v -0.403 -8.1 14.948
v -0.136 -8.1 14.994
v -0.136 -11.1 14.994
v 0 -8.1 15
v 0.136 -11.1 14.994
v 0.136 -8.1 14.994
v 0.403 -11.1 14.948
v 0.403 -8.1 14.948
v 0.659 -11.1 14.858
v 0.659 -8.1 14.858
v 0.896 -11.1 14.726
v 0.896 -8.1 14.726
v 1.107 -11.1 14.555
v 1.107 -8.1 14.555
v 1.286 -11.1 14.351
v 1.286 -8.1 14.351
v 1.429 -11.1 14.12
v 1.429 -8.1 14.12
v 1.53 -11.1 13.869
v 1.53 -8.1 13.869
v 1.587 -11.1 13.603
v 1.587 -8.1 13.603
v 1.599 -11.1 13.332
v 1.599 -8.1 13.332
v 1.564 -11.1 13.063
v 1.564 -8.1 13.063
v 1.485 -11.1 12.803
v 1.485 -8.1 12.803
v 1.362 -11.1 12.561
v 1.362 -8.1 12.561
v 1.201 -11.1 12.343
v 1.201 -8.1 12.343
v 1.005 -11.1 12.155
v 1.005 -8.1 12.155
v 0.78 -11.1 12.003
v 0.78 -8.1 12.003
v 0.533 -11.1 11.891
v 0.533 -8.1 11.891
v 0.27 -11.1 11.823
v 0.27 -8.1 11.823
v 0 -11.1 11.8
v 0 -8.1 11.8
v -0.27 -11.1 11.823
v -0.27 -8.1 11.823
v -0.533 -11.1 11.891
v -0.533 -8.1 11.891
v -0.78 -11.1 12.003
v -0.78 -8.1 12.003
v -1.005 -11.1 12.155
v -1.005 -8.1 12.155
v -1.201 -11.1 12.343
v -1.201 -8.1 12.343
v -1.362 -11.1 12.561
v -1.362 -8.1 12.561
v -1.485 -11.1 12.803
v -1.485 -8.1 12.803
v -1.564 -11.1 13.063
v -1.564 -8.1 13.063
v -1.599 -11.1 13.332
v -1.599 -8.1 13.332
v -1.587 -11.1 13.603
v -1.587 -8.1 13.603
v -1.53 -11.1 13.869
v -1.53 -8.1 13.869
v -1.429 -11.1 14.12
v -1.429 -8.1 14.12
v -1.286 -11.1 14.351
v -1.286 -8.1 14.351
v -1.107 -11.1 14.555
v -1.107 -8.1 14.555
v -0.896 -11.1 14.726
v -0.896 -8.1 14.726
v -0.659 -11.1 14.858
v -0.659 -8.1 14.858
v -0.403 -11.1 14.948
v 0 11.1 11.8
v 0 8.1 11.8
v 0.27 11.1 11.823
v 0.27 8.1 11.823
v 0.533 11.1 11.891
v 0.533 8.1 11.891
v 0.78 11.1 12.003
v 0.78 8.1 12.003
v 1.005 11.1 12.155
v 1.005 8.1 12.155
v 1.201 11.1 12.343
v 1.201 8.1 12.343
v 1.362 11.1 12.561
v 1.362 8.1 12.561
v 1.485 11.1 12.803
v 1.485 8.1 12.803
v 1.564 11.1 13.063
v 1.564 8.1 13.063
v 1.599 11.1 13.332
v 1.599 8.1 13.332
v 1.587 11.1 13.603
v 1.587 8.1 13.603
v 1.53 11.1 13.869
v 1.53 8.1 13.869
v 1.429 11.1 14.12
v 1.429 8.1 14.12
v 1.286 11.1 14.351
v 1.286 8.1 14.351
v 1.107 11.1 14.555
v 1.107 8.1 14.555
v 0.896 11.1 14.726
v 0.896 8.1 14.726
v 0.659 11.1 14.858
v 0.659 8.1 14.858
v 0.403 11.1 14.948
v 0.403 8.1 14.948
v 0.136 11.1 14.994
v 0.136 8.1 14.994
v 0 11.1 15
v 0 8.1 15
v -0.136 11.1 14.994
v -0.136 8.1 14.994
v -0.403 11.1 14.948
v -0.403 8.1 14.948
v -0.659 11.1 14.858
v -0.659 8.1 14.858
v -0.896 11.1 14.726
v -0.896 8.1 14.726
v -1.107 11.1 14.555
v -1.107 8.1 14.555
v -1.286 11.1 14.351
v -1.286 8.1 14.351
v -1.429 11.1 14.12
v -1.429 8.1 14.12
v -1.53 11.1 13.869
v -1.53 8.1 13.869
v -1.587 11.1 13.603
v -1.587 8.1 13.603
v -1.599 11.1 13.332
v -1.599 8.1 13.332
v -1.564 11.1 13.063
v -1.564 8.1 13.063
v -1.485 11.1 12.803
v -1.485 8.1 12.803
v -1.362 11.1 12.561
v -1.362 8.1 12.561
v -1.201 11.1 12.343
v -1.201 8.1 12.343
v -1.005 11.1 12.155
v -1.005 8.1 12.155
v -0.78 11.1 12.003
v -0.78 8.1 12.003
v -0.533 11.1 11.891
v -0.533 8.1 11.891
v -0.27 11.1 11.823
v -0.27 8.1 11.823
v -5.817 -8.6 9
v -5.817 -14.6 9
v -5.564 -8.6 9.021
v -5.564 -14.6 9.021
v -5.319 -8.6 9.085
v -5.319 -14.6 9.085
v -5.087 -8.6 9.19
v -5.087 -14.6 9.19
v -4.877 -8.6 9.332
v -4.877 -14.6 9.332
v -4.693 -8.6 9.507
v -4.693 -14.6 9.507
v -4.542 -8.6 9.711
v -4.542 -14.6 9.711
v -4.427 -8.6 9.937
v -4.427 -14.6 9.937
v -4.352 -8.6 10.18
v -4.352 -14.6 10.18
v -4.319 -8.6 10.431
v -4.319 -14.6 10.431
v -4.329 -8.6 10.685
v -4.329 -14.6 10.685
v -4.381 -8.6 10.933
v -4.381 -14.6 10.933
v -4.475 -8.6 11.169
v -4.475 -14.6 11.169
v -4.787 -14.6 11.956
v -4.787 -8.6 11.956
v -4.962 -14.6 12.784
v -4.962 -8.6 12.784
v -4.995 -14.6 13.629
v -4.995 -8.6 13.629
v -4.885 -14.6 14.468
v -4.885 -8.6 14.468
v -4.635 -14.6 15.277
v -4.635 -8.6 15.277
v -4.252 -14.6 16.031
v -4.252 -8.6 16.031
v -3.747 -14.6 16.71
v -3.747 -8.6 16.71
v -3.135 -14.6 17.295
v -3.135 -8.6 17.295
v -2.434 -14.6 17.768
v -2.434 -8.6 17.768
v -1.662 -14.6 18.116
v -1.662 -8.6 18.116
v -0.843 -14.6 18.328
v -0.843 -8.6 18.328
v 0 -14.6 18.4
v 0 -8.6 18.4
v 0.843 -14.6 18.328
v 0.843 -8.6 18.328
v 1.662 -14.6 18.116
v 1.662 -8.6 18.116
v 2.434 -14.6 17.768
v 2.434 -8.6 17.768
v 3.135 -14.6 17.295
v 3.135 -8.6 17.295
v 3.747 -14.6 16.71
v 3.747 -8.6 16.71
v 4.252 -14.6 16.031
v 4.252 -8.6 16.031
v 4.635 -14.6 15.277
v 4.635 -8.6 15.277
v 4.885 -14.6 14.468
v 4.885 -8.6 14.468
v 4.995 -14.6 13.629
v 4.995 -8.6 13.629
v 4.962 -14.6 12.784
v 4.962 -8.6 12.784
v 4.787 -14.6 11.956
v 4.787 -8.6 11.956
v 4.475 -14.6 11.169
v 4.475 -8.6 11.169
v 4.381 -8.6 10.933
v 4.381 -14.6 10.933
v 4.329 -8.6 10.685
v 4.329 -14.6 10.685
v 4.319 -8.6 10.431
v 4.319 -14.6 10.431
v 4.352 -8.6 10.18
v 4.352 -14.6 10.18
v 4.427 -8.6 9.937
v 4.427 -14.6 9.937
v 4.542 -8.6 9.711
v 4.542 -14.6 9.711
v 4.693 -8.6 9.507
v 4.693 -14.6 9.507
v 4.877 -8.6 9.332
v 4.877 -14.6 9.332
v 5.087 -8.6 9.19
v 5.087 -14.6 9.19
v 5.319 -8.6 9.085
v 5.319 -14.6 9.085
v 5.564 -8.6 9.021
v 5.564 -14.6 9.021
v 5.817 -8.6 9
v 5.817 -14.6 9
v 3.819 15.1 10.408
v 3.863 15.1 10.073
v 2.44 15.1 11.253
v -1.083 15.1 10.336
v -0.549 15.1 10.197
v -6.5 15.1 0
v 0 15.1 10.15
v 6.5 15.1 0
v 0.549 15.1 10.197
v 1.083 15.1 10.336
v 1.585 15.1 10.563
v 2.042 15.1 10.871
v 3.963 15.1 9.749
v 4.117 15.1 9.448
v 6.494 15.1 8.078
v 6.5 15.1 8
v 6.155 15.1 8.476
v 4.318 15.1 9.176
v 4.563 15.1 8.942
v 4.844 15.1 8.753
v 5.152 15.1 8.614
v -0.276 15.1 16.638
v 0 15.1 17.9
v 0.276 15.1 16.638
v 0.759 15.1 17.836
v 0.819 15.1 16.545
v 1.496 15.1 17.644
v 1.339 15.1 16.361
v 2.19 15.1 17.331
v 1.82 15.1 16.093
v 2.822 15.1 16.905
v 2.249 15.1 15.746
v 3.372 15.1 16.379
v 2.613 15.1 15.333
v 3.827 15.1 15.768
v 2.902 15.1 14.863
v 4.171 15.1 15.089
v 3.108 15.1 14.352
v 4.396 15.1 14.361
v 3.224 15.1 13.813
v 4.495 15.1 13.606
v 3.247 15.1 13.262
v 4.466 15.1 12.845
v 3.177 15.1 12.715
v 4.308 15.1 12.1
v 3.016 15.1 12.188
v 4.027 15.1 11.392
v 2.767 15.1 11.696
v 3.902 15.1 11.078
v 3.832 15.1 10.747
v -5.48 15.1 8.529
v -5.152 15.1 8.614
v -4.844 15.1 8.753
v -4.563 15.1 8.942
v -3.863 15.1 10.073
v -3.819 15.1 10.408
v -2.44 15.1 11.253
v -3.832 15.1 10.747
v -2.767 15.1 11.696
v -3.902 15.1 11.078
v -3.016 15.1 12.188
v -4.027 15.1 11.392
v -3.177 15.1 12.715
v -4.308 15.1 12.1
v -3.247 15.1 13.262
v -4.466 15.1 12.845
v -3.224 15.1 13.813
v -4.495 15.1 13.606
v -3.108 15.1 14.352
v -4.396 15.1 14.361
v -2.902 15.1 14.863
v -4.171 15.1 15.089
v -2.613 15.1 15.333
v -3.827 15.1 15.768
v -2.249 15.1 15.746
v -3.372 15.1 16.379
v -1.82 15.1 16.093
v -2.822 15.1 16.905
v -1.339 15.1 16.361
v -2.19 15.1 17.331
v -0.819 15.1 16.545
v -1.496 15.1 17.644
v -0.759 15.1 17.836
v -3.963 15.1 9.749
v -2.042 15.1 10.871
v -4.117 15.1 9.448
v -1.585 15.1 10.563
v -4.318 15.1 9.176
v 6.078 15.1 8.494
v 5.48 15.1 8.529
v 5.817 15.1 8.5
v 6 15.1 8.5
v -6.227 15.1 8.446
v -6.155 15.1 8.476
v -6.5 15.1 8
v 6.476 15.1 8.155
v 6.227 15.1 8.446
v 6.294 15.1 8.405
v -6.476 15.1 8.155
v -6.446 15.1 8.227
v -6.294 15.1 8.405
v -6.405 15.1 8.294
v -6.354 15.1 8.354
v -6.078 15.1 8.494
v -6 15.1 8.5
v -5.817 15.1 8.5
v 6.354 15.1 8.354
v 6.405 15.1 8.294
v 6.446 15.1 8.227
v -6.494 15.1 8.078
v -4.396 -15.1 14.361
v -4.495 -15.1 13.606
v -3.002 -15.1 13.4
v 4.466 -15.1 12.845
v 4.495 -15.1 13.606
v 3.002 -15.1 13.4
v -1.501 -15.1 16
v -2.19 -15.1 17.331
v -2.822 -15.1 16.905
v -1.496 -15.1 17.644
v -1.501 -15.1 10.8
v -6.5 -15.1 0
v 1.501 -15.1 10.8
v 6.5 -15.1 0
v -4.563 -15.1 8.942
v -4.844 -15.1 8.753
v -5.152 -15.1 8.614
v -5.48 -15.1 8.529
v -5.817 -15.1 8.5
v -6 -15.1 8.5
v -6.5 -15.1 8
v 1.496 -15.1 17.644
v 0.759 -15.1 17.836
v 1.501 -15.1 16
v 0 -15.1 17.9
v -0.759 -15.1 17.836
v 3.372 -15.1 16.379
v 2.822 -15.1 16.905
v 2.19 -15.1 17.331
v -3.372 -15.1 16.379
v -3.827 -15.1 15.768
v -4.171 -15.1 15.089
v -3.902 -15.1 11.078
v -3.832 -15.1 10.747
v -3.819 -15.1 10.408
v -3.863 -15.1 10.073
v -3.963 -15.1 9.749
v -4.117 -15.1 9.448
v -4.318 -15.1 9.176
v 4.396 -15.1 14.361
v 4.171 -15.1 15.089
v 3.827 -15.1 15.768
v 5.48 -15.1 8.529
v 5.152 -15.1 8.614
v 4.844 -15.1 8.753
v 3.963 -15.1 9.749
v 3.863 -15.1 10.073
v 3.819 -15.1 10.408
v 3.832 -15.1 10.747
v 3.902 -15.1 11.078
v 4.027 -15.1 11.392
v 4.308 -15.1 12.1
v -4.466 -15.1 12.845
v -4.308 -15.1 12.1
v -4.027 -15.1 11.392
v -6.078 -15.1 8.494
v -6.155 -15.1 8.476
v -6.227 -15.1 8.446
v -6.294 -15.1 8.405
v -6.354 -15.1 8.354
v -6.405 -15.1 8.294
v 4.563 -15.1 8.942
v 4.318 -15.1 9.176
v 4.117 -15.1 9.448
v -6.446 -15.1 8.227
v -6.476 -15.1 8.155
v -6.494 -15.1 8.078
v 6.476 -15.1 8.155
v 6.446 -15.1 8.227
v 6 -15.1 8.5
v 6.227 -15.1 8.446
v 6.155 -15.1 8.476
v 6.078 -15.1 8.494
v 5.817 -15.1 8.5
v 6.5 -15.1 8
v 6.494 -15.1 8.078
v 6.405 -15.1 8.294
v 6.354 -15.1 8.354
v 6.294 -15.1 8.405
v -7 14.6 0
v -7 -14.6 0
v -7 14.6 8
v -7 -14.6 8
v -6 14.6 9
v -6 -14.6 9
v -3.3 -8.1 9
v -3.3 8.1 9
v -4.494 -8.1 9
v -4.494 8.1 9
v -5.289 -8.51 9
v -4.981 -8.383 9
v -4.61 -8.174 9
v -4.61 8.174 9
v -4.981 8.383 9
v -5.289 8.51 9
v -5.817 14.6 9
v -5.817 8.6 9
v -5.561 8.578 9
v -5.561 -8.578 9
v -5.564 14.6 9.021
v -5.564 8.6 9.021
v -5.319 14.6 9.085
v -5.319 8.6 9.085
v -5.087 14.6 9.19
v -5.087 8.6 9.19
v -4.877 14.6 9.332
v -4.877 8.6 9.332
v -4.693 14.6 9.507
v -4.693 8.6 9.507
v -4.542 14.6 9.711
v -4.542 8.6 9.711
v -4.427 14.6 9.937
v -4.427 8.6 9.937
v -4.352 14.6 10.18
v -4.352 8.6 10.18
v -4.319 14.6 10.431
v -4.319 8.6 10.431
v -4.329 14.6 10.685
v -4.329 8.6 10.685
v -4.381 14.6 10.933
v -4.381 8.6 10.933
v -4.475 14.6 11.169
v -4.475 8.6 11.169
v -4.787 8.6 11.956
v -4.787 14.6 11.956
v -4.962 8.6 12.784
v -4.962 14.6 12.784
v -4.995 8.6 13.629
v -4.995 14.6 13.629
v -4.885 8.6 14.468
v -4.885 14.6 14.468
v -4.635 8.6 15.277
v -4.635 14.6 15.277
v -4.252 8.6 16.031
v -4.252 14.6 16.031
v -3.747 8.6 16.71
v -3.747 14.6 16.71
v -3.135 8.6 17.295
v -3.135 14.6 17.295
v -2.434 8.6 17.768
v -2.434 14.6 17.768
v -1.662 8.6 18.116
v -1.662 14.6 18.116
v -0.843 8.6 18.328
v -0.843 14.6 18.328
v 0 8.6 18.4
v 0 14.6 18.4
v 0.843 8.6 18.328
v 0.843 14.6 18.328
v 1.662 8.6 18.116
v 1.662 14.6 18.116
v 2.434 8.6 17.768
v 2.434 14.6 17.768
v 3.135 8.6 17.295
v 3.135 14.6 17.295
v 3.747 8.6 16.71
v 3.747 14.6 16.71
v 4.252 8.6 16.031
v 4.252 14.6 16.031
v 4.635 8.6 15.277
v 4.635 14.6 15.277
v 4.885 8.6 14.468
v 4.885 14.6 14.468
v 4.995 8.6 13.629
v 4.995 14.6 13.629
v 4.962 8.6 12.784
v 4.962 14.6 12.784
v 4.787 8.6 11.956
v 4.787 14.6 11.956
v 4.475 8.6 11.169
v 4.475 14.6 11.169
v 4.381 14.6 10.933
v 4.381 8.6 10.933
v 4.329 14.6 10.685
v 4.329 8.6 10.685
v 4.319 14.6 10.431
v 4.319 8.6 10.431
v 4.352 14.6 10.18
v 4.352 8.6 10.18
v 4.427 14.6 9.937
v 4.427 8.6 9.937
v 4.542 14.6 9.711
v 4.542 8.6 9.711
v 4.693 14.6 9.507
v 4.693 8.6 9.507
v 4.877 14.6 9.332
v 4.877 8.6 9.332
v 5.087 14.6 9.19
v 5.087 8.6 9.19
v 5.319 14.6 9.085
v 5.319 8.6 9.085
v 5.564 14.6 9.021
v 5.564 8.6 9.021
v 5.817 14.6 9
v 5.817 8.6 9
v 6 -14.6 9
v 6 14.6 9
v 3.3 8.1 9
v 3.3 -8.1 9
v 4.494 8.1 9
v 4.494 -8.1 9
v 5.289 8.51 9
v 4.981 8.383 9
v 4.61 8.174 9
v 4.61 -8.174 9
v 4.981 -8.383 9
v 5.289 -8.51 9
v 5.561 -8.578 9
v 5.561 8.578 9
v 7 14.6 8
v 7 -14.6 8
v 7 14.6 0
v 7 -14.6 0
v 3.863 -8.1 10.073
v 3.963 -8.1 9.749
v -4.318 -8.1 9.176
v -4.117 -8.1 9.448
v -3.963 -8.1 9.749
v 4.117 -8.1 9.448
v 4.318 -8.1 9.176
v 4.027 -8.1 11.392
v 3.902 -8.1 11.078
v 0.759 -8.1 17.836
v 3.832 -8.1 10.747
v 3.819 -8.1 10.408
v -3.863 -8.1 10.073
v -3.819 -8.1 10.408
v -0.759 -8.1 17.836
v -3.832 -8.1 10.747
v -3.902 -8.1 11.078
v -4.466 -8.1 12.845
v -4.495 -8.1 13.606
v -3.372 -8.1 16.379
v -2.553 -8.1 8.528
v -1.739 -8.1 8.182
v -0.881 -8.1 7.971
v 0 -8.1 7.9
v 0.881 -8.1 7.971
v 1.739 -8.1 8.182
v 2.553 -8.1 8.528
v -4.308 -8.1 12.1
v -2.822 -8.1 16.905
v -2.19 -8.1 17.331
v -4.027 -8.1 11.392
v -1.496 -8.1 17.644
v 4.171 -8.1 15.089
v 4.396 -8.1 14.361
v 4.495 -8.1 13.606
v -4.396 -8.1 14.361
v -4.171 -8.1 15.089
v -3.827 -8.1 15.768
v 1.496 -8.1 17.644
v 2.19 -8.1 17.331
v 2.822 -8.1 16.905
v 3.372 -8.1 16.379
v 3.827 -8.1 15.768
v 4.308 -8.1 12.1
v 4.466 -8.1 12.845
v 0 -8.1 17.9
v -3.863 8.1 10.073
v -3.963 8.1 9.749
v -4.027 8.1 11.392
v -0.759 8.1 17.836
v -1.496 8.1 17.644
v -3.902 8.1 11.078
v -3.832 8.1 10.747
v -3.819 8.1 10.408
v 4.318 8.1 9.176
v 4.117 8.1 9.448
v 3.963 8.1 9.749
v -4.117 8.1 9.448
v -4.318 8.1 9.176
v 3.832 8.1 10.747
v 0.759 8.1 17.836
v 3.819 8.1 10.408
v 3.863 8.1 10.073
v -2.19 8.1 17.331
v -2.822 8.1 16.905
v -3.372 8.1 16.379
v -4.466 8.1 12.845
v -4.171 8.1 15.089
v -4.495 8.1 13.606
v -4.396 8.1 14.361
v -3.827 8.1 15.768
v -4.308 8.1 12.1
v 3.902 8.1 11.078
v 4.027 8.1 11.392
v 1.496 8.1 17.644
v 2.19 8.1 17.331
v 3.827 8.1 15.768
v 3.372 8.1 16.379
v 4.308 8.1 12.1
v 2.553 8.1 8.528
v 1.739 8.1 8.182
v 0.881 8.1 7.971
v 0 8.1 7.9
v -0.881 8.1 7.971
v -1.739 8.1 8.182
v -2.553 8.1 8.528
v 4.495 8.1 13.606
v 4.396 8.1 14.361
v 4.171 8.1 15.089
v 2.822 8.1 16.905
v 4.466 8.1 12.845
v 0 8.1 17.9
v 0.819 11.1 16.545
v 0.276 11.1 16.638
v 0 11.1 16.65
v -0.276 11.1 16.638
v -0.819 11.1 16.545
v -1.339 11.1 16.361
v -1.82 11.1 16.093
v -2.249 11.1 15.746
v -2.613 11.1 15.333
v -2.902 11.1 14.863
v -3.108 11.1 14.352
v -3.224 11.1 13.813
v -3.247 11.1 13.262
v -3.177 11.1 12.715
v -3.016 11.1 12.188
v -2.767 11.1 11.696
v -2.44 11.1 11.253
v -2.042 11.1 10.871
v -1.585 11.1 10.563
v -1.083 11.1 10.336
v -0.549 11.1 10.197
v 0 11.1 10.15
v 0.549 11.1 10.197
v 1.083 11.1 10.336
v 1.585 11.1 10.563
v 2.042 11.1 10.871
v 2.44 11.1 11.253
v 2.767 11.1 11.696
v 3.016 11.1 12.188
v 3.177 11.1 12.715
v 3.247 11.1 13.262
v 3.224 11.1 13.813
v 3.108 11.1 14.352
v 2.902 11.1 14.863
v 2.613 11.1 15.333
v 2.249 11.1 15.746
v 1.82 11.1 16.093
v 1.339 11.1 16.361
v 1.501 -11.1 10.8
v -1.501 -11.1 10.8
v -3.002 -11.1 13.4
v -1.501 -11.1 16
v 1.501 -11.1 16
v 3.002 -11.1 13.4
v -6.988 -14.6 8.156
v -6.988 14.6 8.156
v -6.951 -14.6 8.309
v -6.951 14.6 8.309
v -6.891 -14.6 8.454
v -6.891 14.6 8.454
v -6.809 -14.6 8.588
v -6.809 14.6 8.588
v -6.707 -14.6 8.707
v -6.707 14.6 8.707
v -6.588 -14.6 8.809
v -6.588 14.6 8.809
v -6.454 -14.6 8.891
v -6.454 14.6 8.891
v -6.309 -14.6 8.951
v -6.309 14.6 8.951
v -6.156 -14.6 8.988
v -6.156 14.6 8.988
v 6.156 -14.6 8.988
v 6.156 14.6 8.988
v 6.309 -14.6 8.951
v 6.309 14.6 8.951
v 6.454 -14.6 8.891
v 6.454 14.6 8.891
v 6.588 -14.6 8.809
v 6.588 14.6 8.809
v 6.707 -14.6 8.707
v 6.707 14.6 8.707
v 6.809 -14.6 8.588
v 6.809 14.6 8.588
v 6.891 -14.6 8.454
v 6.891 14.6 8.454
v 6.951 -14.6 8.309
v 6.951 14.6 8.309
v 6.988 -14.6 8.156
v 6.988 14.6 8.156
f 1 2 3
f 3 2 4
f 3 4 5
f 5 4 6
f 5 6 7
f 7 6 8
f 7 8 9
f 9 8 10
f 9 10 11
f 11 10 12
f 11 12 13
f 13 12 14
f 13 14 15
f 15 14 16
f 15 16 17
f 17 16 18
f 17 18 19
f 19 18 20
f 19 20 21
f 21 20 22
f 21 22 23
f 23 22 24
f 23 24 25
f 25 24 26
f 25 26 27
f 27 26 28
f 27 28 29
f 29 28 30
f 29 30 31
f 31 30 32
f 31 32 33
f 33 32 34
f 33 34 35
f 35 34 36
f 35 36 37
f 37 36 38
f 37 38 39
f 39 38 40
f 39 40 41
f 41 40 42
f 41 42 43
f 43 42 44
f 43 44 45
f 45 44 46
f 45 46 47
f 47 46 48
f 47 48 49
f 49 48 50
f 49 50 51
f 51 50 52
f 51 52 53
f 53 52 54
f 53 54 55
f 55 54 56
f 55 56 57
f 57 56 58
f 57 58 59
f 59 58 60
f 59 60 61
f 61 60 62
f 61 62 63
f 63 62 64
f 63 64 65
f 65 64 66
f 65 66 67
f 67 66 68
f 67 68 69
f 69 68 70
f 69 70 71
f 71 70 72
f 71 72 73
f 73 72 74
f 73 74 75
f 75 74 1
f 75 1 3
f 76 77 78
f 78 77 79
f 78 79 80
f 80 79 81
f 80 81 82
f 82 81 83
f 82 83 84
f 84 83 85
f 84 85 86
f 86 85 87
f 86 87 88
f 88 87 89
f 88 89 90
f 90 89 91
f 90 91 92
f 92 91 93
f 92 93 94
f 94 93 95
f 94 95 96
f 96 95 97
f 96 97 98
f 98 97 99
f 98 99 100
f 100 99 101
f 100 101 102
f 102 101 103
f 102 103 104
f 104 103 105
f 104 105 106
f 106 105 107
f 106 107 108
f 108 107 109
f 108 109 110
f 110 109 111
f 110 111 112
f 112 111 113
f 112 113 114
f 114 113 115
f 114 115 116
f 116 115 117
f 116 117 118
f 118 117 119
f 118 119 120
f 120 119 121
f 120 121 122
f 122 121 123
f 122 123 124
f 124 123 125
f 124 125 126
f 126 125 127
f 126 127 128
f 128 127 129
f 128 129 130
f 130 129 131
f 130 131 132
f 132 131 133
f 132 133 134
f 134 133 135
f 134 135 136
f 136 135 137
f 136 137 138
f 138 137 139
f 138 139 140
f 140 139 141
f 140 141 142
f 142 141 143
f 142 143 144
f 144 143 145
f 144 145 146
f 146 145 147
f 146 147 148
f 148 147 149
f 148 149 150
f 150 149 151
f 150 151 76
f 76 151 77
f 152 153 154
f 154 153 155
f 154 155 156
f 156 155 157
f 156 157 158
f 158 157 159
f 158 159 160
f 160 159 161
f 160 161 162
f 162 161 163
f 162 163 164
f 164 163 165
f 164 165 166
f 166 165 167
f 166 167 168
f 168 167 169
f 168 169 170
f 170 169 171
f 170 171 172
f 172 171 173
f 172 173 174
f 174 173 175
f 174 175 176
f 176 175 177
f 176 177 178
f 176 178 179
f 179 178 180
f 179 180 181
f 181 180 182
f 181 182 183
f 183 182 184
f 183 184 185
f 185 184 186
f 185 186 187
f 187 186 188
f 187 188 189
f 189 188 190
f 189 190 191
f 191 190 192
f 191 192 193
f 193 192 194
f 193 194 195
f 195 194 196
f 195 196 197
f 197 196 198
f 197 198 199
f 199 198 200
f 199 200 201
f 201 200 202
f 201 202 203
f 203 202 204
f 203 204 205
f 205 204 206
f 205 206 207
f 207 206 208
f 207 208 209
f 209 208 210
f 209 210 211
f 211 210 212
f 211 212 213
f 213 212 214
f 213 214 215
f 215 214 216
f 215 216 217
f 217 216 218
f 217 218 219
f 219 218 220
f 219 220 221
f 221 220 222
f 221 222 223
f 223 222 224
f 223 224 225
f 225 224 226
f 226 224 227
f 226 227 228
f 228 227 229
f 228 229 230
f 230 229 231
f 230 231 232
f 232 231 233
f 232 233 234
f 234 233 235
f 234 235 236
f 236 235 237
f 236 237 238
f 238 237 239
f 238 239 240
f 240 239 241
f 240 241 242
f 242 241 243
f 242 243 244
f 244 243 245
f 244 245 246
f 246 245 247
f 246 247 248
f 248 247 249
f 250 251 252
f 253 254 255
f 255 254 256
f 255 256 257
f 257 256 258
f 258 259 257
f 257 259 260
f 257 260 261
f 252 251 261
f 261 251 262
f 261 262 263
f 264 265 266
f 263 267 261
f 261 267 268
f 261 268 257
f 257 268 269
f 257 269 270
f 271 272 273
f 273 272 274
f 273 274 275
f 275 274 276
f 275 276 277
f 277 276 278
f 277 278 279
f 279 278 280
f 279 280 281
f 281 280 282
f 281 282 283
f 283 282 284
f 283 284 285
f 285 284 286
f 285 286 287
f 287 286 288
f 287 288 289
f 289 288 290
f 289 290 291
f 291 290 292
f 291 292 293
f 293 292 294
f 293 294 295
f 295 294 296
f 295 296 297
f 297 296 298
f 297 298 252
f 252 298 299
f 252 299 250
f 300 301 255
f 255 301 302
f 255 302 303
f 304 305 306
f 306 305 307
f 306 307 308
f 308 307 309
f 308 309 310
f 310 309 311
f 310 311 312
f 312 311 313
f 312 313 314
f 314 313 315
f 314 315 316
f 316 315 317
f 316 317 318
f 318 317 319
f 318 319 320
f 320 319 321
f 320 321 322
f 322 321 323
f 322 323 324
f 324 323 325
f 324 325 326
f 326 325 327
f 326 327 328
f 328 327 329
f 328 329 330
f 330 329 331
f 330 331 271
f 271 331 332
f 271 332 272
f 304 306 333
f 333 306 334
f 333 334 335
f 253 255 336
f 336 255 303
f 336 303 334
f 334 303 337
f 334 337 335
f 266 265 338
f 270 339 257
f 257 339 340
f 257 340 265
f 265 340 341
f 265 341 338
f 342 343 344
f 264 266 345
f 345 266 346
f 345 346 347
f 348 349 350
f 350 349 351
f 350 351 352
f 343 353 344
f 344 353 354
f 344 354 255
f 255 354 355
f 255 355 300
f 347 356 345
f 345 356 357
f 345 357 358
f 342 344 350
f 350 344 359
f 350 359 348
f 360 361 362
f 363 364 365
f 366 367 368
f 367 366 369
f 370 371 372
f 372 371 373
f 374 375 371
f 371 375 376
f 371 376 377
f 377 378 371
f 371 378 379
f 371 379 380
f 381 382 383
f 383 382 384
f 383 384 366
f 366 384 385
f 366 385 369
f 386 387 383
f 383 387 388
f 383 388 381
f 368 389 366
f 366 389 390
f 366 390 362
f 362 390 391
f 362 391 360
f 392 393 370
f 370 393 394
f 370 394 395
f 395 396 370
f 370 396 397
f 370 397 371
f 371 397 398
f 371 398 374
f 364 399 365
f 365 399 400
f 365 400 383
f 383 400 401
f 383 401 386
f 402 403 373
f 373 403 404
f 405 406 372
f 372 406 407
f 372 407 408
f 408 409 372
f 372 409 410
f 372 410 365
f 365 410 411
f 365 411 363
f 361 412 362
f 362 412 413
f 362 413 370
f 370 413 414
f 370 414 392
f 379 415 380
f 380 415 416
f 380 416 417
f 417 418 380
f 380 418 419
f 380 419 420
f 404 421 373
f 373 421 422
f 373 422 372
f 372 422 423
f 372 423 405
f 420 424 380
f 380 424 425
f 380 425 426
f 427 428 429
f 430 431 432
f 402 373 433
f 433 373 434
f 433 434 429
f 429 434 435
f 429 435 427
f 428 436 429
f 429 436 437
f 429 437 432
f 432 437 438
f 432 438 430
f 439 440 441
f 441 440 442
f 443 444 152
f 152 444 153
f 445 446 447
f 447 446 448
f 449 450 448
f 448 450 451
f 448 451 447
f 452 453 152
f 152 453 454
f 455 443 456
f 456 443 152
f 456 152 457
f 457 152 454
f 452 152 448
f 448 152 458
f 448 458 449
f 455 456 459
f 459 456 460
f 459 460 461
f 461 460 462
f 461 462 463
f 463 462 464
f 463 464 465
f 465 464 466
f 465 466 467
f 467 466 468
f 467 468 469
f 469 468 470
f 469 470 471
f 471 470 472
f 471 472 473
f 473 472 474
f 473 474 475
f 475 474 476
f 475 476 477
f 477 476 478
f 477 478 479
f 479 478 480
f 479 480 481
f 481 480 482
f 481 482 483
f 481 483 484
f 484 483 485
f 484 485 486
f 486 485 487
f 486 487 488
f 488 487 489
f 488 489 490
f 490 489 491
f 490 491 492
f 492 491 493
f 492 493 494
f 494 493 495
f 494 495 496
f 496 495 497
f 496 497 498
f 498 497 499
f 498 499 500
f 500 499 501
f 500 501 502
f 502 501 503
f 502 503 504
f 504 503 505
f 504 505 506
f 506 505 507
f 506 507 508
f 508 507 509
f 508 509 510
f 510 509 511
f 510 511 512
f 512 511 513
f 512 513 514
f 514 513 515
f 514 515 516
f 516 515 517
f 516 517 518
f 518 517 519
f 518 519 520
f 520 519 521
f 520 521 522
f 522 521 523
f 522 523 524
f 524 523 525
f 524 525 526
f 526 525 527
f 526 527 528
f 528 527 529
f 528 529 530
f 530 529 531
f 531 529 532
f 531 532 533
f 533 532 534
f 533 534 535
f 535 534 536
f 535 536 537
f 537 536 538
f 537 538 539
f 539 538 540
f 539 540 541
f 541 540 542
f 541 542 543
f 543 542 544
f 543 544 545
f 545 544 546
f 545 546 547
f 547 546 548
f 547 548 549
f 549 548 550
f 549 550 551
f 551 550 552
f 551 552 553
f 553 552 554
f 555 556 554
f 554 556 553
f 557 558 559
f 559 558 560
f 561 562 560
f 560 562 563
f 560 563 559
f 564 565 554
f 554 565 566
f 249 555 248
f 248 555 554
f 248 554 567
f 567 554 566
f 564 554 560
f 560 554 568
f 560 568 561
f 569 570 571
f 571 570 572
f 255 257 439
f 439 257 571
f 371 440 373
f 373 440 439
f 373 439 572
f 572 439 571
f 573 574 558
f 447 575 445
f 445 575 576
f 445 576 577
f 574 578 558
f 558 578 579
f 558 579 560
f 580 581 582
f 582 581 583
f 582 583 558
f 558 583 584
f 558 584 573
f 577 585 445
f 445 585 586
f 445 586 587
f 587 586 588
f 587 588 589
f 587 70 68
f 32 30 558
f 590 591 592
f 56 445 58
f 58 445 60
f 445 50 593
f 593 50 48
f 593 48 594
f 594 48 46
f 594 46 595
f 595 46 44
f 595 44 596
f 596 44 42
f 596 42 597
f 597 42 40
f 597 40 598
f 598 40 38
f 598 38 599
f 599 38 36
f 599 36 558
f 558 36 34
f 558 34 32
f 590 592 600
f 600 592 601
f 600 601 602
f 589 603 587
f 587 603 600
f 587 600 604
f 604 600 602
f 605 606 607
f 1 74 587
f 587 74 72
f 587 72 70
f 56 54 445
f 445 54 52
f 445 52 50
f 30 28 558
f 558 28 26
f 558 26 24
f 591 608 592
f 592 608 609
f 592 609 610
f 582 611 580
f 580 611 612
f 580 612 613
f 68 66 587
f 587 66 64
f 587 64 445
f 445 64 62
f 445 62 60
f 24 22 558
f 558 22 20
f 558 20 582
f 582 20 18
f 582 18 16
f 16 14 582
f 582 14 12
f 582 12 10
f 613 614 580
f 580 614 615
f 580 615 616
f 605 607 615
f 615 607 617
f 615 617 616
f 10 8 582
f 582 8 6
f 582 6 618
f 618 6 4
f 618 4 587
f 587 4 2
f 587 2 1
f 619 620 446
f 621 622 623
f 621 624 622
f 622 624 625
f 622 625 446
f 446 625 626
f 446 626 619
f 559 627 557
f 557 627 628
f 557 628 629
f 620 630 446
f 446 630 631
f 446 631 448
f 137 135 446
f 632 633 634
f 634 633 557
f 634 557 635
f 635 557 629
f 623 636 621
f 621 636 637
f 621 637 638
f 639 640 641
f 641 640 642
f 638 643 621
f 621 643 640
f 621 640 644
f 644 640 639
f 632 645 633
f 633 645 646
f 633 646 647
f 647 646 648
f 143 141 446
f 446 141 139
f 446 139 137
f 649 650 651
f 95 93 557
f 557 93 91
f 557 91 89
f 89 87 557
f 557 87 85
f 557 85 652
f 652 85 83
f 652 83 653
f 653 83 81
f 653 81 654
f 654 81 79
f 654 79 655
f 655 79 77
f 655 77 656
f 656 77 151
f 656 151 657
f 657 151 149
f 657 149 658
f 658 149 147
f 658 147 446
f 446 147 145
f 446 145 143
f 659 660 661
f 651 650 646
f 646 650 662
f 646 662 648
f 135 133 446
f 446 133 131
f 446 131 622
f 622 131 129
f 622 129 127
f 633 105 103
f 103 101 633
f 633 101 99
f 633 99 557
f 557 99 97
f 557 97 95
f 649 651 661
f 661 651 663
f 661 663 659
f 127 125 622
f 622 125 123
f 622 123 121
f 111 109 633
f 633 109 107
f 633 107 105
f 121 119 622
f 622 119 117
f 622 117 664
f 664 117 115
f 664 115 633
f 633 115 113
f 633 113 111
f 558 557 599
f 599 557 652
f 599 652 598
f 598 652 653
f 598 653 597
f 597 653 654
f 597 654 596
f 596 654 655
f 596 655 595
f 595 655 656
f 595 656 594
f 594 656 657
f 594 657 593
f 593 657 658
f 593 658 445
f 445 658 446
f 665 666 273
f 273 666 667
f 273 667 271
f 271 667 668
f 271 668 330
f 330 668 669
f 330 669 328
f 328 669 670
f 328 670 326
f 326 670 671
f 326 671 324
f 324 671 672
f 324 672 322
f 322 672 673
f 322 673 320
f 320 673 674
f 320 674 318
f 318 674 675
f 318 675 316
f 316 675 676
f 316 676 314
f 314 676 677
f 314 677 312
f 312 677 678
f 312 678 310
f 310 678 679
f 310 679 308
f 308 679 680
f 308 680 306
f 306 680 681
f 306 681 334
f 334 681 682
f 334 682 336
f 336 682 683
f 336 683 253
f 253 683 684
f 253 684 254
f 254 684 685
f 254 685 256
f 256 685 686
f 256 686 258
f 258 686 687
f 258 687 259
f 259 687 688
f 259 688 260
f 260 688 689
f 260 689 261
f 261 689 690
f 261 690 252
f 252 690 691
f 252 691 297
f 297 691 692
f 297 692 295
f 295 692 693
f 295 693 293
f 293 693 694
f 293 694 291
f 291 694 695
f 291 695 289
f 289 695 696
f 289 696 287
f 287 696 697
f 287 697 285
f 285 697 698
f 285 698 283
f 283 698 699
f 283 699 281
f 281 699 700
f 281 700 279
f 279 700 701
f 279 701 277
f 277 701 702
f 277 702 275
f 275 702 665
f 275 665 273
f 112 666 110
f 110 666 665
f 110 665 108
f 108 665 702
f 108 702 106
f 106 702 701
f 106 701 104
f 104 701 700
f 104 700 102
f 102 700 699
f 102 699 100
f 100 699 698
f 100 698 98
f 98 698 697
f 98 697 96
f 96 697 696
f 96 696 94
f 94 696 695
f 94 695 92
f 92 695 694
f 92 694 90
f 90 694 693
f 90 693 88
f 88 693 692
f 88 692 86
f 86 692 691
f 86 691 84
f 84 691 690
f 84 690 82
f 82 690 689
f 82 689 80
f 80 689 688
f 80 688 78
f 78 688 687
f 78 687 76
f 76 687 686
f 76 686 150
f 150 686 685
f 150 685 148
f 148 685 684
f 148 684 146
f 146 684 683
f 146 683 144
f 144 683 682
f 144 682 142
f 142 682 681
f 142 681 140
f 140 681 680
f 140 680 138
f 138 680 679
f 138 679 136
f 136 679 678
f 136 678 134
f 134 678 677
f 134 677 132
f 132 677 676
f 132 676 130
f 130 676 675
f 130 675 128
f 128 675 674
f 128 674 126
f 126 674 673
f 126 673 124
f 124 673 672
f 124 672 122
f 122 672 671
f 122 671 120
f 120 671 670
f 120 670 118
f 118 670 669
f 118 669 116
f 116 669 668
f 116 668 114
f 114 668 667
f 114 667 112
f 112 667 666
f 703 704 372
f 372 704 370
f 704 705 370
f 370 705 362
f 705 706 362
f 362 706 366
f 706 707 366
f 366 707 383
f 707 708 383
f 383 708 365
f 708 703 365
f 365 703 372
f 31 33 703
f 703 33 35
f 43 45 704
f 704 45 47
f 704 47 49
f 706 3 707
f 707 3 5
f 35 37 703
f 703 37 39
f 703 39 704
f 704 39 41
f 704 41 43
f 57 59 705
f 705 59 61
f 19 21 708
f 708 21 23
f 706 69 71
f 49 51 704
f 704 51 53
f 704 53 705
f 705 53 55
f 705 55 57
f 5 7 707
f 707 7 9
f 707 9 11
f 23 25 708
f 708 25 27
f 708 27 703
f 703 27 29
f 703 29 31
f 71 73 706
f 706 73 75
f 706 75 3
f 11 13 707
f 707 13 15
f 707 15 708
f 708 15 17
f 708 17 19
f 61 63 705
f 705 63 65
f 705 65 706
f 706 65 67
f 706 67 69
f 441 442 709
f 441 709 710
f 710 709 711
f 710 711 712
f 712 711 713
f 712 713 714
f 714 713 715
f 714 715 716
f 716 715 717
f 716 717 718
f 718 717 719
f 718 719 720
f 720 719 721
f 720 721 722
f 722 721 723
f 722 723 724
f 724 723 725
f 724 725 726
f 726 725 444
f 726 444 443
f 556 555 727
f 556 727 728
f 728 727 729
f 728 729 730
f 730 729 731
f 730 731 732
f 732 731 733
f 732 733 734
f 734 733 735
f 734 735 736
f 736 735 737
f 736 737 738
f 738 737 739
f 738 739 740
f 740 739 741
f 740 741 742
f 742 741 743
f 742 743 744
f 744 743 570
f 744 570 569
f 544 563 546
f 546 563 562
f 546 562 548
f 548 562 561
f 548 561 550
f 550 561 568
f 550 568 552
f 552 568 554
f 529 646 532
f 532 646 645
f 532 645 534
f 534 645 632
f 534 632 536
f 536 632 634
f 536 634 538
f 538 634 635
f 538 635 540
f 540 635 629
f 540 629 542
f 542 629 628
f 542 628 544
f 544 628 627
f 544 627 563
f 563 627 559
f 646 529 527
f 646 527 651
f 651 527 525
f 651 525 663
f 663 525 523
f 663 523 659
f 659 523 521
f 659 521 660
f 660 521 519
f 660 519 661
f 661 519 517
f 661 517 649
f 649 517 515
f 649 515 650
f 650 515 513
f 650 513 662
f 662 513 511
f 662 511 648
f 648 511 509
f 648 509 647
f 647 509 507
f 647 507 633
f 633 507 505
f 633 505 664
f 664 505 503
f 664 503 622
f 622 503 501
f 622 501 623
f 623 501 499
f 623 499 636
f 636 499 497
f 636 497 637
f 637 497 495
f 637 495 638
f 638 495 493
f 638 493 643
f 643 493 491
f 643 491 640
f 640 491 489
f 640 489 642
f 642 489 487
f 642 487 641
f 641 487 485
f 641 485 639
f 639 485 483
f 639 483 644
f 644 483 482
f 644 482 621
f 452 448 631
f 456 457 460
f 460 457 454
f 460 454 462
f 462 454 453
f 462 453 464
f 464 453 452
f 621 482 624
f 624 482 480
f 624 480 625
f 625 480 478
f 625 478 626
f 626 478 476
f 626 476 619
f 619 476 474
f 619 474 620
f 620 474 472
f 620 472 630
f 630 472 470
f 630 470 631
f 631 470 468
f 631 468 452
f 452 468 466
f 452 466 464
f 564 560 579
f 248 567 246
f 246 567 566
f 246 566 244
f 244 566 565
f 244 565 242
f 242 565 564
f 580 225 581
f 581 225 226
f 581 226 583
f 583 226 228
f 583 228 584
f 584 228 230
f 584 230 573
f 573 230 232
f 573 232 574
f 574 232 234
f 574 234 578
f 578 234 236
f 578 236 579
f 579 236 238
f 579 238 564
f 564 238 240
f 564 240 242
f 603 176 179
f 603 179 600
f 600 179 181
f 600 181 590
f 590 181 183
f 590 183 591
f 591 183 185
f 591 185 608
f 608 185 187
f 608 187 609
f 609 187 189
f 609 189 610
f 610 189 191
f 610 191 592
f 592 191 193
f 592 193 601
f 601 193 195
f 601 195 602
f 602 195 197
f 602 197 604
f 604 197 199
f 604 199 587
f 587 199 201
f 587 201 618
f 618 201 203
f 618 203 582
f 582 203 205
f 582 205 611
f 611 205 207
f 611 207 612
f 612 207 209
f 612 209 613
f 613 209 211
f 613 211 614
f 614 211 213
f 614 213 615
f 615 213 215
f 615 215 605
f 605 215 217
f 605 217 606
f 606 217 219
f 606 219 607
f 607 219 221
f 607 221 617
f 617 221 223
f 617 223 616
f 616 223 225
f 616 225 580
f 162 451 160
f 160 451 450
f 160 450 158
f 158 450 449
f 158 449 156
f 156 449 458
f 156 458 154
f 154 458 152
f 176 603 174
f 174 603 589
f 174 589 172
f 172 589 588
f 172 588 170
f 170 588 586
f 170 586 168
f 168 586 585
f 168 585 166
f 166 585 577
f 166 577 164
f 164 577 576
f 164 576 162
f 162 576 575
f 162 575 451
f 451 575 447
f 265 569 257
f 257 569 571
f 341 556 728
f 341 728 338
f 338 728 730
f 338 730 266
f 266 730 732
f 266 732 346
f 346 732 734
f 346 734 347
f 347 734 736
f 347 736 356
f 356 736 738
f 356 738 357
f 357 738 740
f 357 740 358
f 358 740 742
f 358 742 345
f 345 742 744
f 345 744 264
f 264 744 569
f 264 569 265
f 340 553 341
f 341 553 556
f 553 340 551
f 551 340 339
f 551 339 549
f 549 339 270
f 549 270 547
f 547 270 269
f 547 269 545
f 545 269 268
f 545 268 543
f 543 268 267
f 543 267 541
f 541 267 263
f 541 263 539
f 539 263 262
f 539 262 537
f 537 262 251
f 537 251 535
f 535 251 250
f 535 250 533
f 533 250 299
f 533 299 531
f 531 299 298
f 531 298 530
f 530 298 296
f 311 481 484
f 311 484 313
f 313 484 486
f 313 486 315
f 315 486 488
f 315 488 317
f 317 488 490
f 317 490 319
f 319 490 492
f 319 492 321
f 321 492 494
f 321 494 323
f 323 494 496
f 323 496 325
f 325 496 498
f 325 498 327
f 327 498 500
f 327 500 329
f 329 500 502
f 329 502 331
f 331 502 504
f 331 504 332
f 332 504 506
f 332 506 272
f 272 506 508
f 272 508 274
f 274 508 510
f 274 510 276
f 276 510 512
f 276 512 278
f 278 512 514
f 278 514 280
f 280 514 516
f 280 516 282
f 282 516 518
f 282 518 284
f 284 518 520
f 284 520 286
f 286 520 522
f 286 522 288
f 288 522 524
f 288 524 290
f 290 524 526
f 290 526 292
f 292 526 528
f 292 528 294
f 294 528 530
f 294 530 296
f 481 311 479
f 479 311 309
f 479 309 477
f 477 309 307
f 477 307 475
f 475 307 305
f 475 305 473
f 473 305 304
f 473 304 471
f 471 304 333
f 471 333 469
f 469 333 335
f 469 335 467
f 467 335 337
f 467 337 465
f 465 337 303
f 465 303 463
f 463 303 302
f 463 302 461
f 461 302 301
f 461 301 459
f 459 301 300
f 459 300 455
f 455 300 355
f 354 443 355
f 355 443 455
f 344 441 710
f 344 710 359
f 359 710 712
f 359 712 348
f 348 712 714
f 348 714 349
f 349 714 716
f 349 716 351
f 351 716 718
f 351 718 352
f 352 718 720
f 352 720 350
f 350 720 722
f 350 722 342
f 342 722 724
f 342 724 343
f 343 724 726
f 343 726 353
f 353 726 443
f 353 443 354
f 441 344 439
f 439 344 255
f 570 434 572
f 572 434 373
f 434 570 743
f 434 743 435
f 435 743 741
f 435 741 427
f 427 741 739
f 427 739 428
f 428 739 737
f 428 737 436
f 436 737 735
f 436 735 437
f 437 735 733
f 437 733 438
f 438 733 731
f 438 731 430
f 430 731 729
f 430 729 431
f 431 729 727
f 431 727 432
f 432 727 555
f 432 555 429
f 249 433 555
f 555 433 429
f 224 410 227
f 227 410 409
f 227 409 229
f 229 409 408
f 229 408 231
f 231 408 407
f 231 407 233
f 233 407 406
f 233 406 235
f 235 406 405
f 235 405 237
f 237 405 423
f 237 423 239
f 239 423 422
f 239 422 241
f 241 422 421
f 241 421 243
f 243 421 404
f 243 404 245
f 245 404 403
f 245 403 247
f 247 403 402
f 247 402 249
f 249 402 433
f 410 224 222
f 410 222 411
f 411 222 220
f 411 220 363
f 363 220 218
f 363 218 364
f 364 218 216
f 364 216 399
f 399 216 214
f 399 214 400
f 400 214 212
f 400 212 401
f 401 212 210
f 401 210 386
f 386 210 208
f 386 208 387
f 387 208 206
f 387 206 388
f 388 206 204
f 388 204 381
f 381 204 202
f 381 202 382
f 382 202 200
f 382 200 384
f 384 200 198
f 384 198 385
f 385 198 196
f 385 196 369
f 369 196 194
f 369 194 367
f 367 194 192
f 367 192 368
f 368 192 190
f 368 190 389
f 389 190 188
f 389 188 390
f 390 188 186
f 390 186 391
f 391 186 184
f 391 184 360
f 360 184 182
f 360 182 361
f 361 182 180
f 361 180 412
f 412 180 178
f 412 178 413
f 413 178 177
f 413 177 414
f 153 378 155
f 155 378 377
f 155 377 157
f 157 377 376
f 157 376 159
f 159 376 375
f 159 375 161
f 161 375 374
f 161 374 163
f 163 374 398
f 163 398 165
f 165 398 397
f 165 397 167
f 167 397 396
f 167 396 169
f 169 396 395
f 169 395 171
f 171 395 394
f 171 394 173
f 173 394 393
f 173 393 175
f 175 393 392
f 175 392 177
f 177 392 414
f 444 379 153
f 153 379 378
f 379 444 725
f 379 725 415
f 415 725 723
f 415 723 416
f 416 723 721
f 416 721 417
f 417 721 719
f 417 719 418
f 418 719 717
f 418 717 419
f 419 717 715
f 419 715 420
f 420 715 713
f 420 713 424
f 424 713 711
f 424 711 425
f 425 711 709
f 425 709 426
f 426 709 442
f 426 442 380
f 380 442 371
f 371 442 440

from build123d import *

# Parameters (mm, degrees)
CROQUIS2_R                 = 1.6
SALIENTE_EXTRUIR1_DEPTH    = 15.1
CORTAR_EXTRUIR4_DEPTH      = 8.1
CORTAR_EXTRUIR2_DEPTH      = 37.049965326
CORTAR_EXTRUIR2_DEPTH_BACK = 4
CROQUIS4_R                 = 3.25
CORTAR_EXTRUIR3_DEPTH      = 4
REDONDEO2_R                = 1
CHAFL_N1_SIZE              = 0.5


with BuildPart() as part:
    # Croquis2 → Saliente-Extruir1 (new, symmetric)
    with BuildSketch(Plane(origin=(0, 0, 0), x_dir=(0, 0, -1), z_dir=(0, 1, 0))):
        with BuildLine():
            Line((0, -7), (0, 7))
            Line((0, 7), (-9, 7))
            Line((-9, 7), (-9, 5.817215829))
            ThreePointArc((-9, 5.817215829), (-9.710647783, 4.541706881), (-11.169230769, 4.474781407))
            ThreePointArc((-11.169230769, 4.474781407), (-18.4, 0), (-11.169230769, -4.474781407))
            ThreePointArc((-11.169230769, -4.474781407), (-9.710647783, -4.541706881), (-9, -5.817215829))
            Line((-9, -5.817215829), (-9, -7))
            Line((-9, -7), (0, -7))
        make_face()
        with Locations(Location((-13.4, 0, 0), (0, 0, 180))):
            Circle(CROQUIS2_R, mode=Mode.SUBTRACT)
    extrude(amount=SALIENTE_EXTRUIR1_DEPTH, both=True)

    # Croquis6 → Cortar-Extruir4 (cut, symmetric)
    with BuildSketch(Plane(origin=(0, 0, 0), x_dir=(1, 0, 0), z_dir=(0, 1, 0))):
        with BuildLine():
            Line((-7, -9), (-3.3, -9))
            ThreePointArc((-3.3, -9), (0, -7.9), (3.3, -9))
            Line((3.3, -9), (7, -9))
            Line((7, -9), (7, -18.9))
            Line((7, -18.9), (-7, -18.9))
            Line((-7, -18.9), (-7, -9))
        make_face()
    extrude(amount=CORTAR_EXTRUIR4_DEPTH, both=True, mode=Mode.SUBTRACT)

    # Croquis4 → Cortar-Extruir2 (cut, two sides: drawn at the far end of the back side and taken through both)
    with BuildSketch(Plane(origin=(0, 15.1, 0), x_dir=(1, 0, 0), z_dir=(0, 1, 0)).offset(-CORTAR_EXTRUIR2_DEPTH_BACK)):
        with Locations(Location((0, -13.4, 0), (0, 0, 90))):
            Circle(CROQUIS4_R)
    extrude(amount=CORTAR_EXTRUIR2_DEPTH + CORTAR_EXTRUIR2_DEPTH_BACK, mode=Mode.SUBTRACT)

    # Croquis5 → Cortar-Extruir3 (cut)
    with BuildSketch(Plane.XZ.offset(15.1)):
        Polygon((1.5011107, 10.8), (3.0022214, 13.4), (1.5011107, 16), (-1.5011107, 16), (-3.0022214, 13.4), (-1.5011107, 10.8), align=None)
    extrude(amount=-CORTAR_EXTRUIR3_DEPTH, mode=Mode.SUBTRACT)

    # Redondeo2
    redondeo2_edges = [part.edges().sort_by_distance(p)[0] for p in [
        (7, 0, 9),
        (-7, 0, 9),
    ]]
    fillet(redondeo2_edges, radius=REDONDEO2_R)

    # Chaflán1
    # the kernel refuses this chamfer: 0.5 mm, written as the material it takes off along each edge
    with BuildSketch(Plane(origin=(0, -15.1, 13.4), x_dir=(-0.8949562813691682, 0, -0.44615384615384657), z_dir=(0.44615384615384657, 0, -0.8949562813691682))) as chafl_n1_piece_1:
        Polygon((5 - CHAFL_N1_SIZE, 0), (5, CHAFL_N1_SIZE), (5, 0), align=None)
    revolve(axis=Axis((0, -15.1, 13.4), (0, 1, 0)), revolution_arc=232.994370335, mode=Mode.SUBTRACT)
    with BuildSketch(Plane(origin=(-5.817215829, -15.1, 10.5), x_dir=(0, 0, -1), z_dir=(-1, 0, 0))) as chafl_n1_piece_2:
        Polygon((1.5 + CHAFL_N1_SIZE, 0), (1.5, -CHAFL_N1_SIZE), (1.5, 0), align=None)
    revolve(axis=Axis((-5.817215829, -15.1, 10.5), (0, -1, 0)), revolution_arc=116.497185168, mode=Mode.SUBTRACT)
    with BuildSketch(Plane(origin=(-7, -15.1, -1.285841494), x_dir=(0.9996219169112968, -0.027495876610585647, 0), z_dir=(0, 0, 1)), Plane(origin=(-7, 15.1, -1.285841494), x_dir=(-0.027495876610585647, -0.9996219169112968, 0), z_dir=(0, 0, 1)), Plane(origin=(7, -15.1, 8), x_dir=(-0.9996219169112968, -0.027495876610585647, 0), z_dir=(0, 0, -1)), Plane(origin=(7, 15.1, 8), x_dir=(0.027495876610585647, -0.9996219169112968, 0), z_dir=(0, 0, -1))) as chafl_n1_piece_3:
        Polygon((CHAFL_N1_SIZE * 0.999621916911, CHAFL_N1_SIZE * 0.0274958766106), (-CHAFL_N1_SIZE * 0.0274958766106, CHAFL_N1_SIZE * 0.999621916911), (0, 0), align=None)
    extrude(amount=9.285841494, mode=Mode.SUBTRACT)
    with BuildSketch(Plane(origin=(-5.817215829, 15.1, 10.5), x_dir=(0, 0, -1), z_dir=(-1, 0, 0))) as chafl_n1_piece_4:
        Polygon((1.5 + CHAFL_N1_SIZE, 0), (1.5, CHAFL_N1_SIZE), (1.5, 0), align=None)
    revolve(axis=Axis((-5.817215829, 15.1, 10.5), (0, -1, 0)), revolution_arc=116.497185168, mode=Mode.SUBTRACT)
    with BuildSketch(Plane(origin=(0, 15.1, 13.4), x_dir=(-0.8949562813691682, 0, -0.44615384615384657), z_dir=(0.44615384615384657, 0, -0.8949562813691682))) as chafl_n1_piece_5:
        Polygon((5 - CHAFL_N1_SIZE, 0), (5, -CHAFL_N1_SIZE), (5, 0), align=None)
    revolve(axis=Axis((0, 15.1, 13.4), (0, 1, 0)), revolution_arc=232.994370335, mode=Mode.SUBTRACT)
    with BuildSketch(Plane(origin=(5.817215829, 15.1, 10.5), x_dir=(-0.8949562813691686, 0, 0.44615384615384585), z_dir=(0.44615384615384585, 0, 0.8949562813691686))) as chafl_n1_piece_6:
        Polygon((1.5 + CHAFL_N1_SIZE, 0), (1.5, CHAFL_N1_SIZE), (1.5, 0), align=None)
    revolve(axis=Axis((5.817215829, 15.1, 10.5), (0, -1, 0)), revolution_arc=116.497185168, mode=Mode.SUBTRACT)
    with BuildSketch(Plane(origin=(5.817215829, 15.1, 9), x_dir=(0, -0.9996219169112968, 0.027495876610585647), z_dir=(1, 0, 0)), Plane(origin=(-6, -15.1, 9), x_dir=(0, -0.027495876610585647, -0.9996219169112968), z_dir=(1, 0, 0)), Plane(origin=(-6, 15.1, 9), x_dir=(0, -0.9996219169112968, 0.027495876610585647), z_dir=(1, 0, 0)), Plane(origin=(5.817215829, -15.1, 9), x_dir=(0, -0.027495876610585647, -0.9996219169112968), z_dir=(1, 0, 0))) as chafl_n1_piece_7:
        Polygon((CHAFL_N1_SIZE * 0.999621916911, CHAFL_N1_SIZE * 0.0274958766106), (-CHAFL_N1_SIZE * 0.0274958766106, CHAFL_N1_SIZE * 0.999621916911), (0, 0), align=None)
    extrude(amount=0.182784171, mode=Mode.SUBTRACT)
    with BuildSketch(Plane(origin=(-5.817215829, 8.1, 10.5), x_dir=(0.8949562813691686, 0, 0.44615384615384585), z_dir=(-0.44615384615384585, 0, 0.8949562813691686))) as chafl_n1_piece_8_section:
        Polygon((1.5 + CHAFL_N1_SIZE, 0), (1.5, CHAFL_N1_SIZE), (1.5, 0), align=None)
    chafl_n1_piece_8 = revolve(axis=Axis((-5.817215829, 8.1, 10.5), (0, 1, 0)), revolution_arc=165.645776503, mode=Mode.PRIVATE)
    chafl_n1_piece_8 = split(chafl_n1_piece_8, bisect_by=Plane(origin=(-4.168851262, 8.241008039, 9), z_dir=(0, 0, 1)), keep=Keep.TOP, mode=Mode.PRIVATE)
    add(chafl_n1_piece_8, mode=Mode.SUBTRACT)
    with BuildSketch(Plane(origin=(0, 8.1, 13.4), x_dir=(-0.8949562813691682, 0, -0.44615384615384657), z_dir=(0.44615384615384657, 0, -0.8949562813691682))) as chafl_n1_piece_9:
        Polygon((5 - CHAFL_N1_SIZE, 0), (5, CHAFL_N1_SIZE), (5, 0), align=None)
    revolve(axis=Axis((0, 8.1, 13.4), (0, 1, 0)), revolution_arc=232.994370335, mode=Mode.SUBTRACT)
    with BuildSketch(Plane(origin=(5.817215829, 8.1, 10.5), x_dir=(0.7564084690774899, 0, -0.6540995550433039), z_dir=(0.6540995550433039, 0, 0.7564084690774899))) as chafl_n1_piece_10_section:
        Polygon((1.5, CHAFL_N1_SIZE), (1.5 + CHAFL_N1_SIZE, 0), (1.5, 0), align=None)
    chafl_n1_piece_10 = revolve(axis=Axis((5.817215829, 8.1, 10.5), (0, 1, 0)), revolution_arc=165.645776503, mode=Mode.PRIVATE)
    chafl_n1_piece_10 = split(chafl_n1_piece_10, bisect_by=Plane(origin=(4.495767194, 8.276282953, 9), z_dir=(0, 0, 1)), keep=Keep.TOP, mode=Mode.PRIVATE)
    add(chafl_n1_piece_10, mode=Mode.SUBTRACT)
    with BuildSketch(Plane(origin=(-5.817215829, -8.1, 10.5), x_dir=(0.8949562813691686, 0, 0.44615384615384585), z_dir=(-0.44615384615384585, 0, 0.8949562813691686))) as chafl_n1_piece_11_section:
        Polygon((1.5, -CHAFL_N1_SIZE), (1.5 + CHAFL_N1_SIZE, 0), (1.5, 0), align=None)
    chafl_n1_piece_11 = revolve(axis=Axis((-5.817215829, -8.1, 10.5), (0, 1, 0)), revolution_arc=165.645776503, mode=Mode.PRIVATE)
    chafl_n1_piece_11 = split(chafl_n1_piece_11, bisect_by=Plane(origin=(-4.495767364, -8.276282993, 9), z_dir=(0, 0, 1)), keep=Keep.TOP, mode=Mode.PRIVATE)
    add(chafl_n1_piece_11, mode=Mode.SUBTRACT)
    with BuildSketch(Plane(origin=(0, -8.1, 13.4), x_dir=(-0.8949562813691682, 0, -0.44615384615384657), z_dir=(0.44615384615384657, 0, -0.8949562813691682))) as chafl_n1_piece_12:
        Polygon((5, -CHAFL_N1_SIZE), (5 - CHAFL_N1_SIZE, 0), (5, 0), align=None)
    revolve(axis=Axis((0, -8.1, 13.4), (0, 1, 0)), revolution_arc=232.994370335, mode=Mode.SUBTRACT)
    with BuildSketch(Plane(origin=(5.817215829, -8.1, 10.5), x_dir=(0.7564084690774899, 0, -0.6540995550433039), z_dir=(0.6540995550433039, 0, 0.7564084690774899))) as chafl_n1_piece_13_section:
        Polygon((1.5, -CHAFL_N1_SIZE), (1.5 + CHAFL_N1_SIZE, 0), (1.5, 0), align=None)
    chafl_n1_piece_13 = revolve(axis=Axis((5.817215829, -8.1, 10.5), (0, 1, 0)), revolution_arc=165.645776503, mode=Mode.PRIVATE)
    chafl_n1_piece_13 = split(chafl_n1_piece_13, bisect_by=Plane(origin=(4.495767194, -8.276282953, 9), z_dir=(0, 0, 1)), keep=Keep.TOP, mode=Mode.PRIVATE)
    add(chafl_n1_piece_13, mode=Mode.SUBTRACT)
    with BuildSketch(Plane(origin=(6, -15.1, 8), x_dir=(1, 0, 0), z_dir=(0, 0, -1))) as chafl_n1_piece_14:
        Polygon((1 - CHAFL_N1_SIZE, 0), (1, -CHAFL_N1_SIZE), (1, 0), align=None)
    revolve(axis=Axis((6, -15.1, 8), (0, -1, 0)), revolution_arc=90, mode=Mode.SUBTRACT)
    with BuildSketch(Plane(origin=(-6, -15.1, 8), x_dir=(-1, 0, 0), z_dir=(0, 0, -1))) as chafl_n1_piece_15:
        Polygon((1 - CHAFL_N1_SIZE, 0), (1, CHAFL_N1_SIZE), (1, 0), align=None)
    revolve(axis=Axis((-6, -15.1, 8), (0, 1, 0)), revolution_arc=90, mode=Mode.SUBTRACT)
    with BuildSketch(Plane(origin=(6, 15.1, 8), x_dir=(1, 0, 0), z_dir=(0, 0, -1))) as chafl_n1_piece_16:
        Polygon((1, CHAFL_N1_SIZE), (1 - CHAFL_N1_SIZE, 0), (1, 0), align=None)
    revolve(axis=Axis((6, 15.1, 8), (0, -1, 0)), revolution_arc=90, mode=Mode.SUBTRACT)
    with BuildSketch(Plane(origin=(5.817215829, -15.1, 10.5), x_dir=(-0.8949562813691686, 0, 0.44615384615384585), z_dir=(0.44615384615384585, 0, 0.8949562813691686))) as chafl_n1_piece_17:
        Polygon((1.5 + CHAFL_N1_SIZE, 0), (1.5, -CHAFL_N1_SIZE), (1.5, 0), align=None)
    revolve(axis=Axis((5.817215829, -15.1, 10.5), (0, -1, 0)), revolution_arc=116.497185168, mode=Mode.SUBTRACT)
    with BuildSketch(Plane(origin=(-6, 15.1, 8), x_dir=(-1, 0, 0), z_dir=(0, 0, -1))) as chafl_n1_piece_18:
        Polygon((1, -CHAFL_N1_SIZE), (1 - CHAFL_N1_SIZE, 0), (1, 0), align=None)
    revolve(axis=Axis((-6, 15.1, 8), (0, 1, 0)), revolution_arc=90, mode=Mode.SUBTRACT)


solid = part.part
